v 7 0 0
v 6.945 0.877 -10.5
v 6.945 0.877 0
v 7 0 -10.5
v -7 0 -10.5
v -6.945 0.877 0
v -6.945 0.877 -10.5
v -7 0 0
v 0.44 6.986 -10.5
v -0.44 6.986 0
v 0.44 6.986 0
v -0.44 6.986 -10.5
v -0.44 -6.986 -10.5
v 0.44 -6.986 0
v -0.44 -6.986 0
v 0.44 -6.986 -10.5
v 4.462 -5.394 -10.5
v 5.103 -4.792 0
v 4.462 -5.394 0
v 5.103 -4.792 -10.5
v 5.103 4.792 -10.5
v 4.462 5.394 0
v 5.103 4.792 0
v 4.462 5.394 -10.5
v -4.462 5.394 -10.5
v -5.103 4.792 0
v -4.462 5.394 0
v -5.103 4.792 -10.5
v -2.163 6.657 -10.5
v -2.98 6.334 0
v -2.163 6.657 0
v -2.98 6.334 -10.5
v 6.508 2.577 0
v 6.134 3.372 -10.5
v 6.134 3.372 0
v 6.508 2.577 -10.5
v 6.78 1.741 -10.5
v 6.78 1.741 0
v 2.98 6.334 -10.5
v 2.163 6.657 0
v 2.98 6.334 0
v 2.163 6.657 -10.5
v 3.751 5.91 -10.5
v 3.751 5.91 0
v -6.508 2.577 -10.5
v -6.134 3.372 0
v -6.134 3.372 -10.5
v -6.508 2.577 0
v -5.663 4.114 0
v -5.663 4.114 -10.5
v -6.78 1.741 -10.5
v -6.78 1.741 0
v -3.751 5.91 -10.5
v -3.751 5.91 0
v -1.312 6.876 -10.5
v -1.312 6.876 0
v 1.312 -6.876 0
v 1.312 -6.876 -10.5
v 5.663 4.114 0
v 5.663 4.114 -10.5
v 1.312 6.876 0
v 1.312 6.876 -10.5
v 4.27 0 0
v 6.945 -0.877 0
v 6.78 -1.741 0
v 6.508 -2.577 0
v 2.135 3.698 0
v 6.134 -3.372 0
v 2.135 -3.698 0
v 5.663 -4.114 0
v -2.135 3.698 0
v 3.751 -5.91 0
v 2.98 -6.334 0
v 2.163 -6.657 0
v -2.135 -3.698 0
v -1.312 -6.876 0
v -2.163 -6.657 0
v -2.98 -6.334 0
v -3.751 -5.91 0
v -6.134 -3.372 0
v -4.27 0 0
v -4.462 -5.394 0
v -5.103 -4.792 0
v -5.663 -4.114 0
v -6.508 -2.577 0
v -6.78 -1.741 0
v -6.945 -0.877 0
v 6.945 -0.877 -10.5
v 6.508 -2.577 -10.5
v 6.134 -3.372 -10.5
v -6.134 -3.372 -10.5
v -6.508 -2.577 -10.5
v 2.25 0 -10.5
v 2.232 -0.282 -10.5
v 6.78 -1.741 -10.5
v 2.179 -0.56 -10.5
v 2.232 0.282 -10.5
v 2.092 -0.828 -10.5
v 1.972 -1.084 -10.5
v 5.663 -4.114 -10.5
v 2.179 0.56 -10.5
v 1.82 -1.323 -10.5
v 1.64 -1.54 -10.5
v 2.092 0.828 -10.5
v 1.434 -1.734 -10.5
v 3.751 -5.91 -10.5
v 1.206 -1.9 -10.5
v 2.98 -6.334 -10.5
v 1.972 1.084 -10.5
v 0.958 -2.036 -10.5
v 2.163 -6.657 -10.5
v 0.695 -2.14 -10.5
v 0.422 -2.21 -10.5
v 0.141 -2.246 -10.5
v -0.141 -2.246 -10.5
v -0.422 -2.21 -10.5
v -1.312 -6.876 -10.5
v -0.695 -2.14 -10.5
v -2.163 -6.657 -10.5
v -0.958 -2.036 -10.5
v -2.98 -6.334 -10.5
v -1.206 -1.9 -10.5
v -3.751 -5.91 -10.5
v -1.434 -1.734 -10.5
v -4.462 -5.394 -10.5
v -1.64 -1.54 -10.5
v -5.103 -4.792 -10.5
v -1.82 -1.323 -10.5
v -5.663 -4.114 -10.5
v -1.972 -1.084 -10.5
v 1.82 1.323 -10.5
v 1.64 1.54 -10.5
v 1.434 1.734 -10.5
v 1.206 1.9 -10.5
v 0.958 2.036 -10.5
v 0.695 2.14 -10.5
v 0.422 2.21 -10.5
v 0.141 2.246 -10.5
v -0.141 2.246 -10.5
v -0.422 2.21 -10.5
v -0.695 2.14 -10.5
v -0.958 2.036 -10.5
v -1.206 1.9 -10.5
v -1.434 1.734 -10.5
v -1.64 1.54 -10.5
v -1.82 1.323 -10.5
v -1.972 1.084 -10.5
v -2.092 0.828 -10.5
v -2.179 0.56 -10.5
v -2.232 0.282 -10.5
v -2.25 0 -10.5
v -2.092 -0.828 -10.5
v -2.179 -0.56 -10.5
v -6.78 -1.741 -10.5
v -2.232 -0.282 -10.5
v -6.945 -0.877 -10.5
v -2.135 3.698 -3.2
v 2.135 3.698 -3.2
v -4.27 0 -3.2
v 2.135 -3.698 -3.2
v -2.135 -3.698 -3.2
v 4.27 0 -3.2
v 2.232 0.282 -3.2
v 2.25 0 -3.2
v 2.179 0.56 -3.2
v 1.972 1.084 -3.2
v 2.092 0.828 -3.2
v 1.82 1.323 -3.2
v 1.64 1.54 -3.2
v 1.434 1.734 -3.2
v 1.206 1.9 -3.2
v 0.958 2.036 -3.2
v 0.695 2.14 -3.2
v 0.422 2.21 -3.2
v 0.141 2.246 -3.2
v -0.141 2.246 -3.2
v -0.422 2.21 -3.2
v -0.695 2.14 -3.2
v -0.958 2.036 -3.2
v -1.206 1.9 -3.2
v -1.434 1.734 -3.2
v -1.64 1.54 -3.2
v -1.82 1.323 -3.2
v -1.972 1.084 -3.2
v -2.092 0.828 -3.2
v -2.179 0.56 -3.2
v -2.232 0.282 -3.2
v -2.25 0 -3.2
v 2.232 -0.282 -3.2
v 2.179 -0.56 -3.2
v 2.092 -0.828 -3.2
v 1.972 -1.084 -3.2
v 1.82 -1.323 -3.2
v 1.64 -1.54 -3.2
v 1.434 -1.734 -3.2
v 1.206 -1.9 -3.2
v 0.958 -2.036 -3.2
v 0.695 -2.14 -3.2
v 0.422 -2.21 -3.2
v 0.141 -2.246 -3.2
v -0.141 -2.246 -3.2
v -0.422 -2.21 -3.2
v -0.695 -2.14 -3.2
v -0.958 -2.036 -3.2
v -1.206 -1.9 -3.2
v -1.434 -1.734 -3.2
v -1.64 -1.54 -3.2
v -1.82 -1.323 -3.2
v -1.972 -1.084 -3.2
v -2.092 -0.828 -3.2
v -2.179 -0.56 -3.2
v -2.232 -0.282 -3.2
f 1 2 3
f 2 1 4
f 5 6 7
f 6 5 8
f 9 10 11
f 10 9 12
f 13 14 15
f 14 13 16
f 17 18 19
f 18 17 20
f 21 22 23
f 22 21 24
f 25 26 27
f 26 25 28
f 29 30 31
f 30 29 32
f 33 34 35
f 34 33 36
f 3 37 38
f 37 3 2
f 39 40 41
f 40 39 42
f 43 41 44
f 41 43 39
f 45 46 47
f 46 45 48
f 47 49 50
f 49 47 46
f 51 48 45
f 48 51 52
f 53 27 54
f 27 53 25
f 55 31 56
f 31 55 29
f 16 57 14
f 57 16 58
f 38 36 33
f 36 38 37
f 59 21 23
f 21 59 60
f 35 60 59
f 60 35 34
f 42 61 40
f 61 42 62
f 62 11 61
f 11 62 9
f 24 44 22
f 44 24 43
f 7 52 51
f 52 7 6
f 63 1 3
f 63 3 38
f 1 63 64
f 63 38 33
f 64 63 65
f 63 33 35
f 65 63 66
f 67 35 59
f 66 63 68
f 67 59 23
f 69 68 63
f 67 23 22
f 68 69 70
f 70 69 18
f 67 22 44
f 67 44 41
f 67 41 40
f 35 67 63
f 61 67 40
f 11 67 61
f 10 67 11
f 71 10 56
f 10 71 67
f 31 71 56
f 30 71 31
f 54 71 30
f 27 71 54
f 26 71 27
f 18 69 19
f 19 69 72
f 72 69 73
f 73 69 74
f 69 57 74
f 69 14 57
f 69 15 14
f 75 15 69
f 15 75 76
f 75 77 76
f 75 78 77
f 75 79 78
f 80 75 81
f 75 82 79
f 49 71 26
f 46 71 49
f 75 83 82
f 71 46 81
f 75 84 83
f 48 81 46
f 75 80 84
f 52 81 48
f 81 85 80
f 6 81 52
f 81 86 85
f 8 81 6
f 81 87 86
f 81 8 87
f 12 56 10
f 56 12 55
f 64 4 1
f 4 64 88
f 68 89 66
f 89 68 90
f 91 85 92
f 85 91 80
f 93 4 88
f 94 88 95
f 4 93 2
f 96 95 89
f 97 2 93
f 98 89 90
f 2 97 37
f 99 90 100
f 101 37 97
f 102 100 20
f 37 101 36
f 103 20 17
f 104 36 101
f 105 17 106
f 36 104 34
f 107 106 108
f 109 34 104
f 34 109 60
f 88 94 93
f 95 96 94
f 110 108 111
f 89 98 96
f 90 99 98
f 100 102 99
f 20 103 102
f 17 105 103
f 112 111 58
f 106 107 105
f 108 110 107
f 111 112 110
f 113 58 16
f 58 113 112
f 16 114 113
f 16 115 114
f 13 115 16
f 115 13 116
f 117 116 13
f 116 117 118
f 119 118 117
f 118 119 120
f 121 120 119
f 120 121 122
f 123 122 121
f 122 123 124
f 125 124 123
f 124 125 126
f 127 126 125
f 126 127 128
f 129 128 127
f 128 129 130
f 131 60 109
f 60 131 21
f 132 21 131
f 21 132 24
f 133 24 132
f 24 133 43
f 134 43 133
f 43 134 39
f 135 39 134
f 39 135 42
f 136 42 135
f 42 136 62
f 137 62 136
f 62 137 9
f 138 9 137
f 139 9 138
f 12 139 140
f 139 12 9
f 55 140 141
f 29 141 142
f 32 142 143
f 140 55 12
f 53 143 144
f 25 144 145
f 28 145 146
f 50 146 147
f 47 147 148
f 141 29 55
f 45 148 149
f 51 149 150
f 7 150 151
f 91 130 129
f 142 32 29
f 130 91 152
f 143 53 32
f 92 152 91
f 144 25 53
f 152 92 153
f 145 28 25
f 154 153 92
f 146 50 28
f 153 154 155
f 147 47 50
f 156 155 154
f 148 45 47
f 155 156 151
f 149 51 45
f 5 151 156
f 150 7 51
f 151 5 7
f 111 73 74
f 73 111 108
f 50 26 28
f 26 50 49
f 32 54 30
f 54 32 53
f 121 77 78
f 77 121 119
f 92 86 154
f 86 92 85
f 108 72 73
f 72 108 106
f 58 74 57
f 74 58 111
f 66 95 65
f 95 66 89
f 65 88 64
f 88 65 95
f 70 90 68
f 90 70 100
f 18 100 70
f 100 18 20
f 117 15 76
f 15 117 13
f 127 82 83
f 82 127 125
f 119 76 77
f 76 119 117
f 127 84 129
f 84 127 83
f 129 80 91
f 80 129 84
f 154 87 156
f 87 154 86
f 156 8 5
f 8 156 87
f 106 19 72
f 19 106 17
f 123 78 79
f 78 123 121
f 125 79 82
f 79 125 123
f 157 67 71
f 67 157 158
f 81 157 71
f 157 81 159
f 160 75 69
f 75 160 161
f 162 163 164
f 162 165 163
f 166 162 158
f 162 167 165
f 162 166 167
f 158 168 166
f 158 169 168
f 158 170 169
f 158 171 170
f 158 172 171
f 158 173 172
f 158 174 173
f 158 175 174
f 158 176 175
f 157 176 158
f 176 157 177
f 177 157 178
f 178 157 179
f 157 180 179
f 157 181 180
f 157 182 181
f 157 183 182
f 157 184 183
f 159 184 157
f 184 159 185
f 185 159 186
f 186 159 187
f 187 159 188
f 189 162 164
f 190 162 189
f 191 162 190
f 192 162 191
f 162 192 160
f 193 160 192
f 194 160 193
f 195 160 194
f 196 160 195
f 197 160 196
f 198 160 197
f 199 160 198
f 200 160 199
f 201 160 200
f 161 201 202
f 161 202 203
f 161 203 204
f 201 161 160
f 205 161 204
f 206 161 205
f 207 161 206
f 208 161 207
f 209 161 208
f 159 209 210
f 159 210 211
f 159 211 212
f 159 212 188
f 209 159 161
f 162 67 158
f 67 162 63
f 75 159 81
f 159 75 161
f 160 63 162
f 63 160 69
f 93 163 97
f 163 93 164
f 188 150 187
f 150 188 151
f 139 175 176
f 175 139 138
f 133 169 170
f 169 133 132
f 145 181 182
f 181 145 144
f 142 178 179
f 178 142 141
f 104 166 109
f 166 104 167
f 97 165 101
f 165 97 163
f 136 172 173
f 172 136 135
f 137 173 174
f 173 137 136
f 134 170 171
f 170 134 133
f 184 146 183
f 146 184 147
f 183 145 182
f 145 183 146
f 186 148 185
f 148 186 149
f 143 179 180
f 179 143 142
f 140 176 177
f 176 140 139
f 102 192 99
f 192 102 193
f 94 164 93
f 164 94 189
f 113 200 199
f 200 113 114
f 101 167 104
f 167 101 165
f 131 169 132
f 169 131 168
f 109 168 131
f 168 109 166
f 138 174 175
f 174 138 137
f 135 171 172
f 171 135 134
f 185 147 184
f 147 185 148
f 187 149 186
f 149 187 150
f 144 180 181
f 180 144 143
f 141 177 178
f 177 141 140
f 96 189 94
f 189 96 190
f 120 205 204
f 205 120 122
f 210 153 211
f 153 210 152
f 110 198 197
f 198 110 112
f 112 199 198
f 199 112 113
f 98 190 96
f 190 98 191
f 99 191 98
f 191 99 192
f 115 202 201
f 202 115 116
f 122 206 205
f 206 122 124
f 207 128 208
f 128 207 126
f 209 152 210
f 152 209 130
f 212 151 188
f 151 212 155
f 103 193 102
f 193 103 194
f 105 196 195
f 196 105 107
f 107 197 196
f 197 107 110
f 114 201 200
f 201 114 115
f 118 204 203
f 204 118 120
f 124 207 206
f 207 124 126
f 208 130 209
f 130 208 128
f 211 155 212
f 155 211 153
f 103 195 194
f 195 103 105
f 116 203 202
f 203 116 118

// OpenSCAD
$fn = 50;


difference() {
	union() {
		translate(v = [0, 0, -10.5000000000]) {
			cylinder(h = 10.5000000000, r = 7.0000000000);
		}
		translate(v = [0, 0, -9.0000000000]) {
			cylinder(h = 9, r = 2.8750000000);
		}
	}
	union() {
		translate(v = [0, 0, 0]) {
			rotate(a = [0, 0, 0]) {
				difference() {
					union() {
						translate(v = [0, 0, -3.2000000000]) {
							linear_extrude(height = 3.2000000000) {
								polygon(points = [[4.2698000000, 0.0000000000], [2.1349000000, 3.6977552691], [-2.1349000000, 3.6977552691], [-4.2698000000, 0.0000000000], [-2.1349000000, -3.6977552691], [2.1349000000, -3.6977552691]]);
							}
						}
					}
					union();
				}
			}
		}
		#translate(v = [0, 0, -100.0000000000]) {
			cylinder(h = 200, r = 2.2500000000);
		}
	}
}
